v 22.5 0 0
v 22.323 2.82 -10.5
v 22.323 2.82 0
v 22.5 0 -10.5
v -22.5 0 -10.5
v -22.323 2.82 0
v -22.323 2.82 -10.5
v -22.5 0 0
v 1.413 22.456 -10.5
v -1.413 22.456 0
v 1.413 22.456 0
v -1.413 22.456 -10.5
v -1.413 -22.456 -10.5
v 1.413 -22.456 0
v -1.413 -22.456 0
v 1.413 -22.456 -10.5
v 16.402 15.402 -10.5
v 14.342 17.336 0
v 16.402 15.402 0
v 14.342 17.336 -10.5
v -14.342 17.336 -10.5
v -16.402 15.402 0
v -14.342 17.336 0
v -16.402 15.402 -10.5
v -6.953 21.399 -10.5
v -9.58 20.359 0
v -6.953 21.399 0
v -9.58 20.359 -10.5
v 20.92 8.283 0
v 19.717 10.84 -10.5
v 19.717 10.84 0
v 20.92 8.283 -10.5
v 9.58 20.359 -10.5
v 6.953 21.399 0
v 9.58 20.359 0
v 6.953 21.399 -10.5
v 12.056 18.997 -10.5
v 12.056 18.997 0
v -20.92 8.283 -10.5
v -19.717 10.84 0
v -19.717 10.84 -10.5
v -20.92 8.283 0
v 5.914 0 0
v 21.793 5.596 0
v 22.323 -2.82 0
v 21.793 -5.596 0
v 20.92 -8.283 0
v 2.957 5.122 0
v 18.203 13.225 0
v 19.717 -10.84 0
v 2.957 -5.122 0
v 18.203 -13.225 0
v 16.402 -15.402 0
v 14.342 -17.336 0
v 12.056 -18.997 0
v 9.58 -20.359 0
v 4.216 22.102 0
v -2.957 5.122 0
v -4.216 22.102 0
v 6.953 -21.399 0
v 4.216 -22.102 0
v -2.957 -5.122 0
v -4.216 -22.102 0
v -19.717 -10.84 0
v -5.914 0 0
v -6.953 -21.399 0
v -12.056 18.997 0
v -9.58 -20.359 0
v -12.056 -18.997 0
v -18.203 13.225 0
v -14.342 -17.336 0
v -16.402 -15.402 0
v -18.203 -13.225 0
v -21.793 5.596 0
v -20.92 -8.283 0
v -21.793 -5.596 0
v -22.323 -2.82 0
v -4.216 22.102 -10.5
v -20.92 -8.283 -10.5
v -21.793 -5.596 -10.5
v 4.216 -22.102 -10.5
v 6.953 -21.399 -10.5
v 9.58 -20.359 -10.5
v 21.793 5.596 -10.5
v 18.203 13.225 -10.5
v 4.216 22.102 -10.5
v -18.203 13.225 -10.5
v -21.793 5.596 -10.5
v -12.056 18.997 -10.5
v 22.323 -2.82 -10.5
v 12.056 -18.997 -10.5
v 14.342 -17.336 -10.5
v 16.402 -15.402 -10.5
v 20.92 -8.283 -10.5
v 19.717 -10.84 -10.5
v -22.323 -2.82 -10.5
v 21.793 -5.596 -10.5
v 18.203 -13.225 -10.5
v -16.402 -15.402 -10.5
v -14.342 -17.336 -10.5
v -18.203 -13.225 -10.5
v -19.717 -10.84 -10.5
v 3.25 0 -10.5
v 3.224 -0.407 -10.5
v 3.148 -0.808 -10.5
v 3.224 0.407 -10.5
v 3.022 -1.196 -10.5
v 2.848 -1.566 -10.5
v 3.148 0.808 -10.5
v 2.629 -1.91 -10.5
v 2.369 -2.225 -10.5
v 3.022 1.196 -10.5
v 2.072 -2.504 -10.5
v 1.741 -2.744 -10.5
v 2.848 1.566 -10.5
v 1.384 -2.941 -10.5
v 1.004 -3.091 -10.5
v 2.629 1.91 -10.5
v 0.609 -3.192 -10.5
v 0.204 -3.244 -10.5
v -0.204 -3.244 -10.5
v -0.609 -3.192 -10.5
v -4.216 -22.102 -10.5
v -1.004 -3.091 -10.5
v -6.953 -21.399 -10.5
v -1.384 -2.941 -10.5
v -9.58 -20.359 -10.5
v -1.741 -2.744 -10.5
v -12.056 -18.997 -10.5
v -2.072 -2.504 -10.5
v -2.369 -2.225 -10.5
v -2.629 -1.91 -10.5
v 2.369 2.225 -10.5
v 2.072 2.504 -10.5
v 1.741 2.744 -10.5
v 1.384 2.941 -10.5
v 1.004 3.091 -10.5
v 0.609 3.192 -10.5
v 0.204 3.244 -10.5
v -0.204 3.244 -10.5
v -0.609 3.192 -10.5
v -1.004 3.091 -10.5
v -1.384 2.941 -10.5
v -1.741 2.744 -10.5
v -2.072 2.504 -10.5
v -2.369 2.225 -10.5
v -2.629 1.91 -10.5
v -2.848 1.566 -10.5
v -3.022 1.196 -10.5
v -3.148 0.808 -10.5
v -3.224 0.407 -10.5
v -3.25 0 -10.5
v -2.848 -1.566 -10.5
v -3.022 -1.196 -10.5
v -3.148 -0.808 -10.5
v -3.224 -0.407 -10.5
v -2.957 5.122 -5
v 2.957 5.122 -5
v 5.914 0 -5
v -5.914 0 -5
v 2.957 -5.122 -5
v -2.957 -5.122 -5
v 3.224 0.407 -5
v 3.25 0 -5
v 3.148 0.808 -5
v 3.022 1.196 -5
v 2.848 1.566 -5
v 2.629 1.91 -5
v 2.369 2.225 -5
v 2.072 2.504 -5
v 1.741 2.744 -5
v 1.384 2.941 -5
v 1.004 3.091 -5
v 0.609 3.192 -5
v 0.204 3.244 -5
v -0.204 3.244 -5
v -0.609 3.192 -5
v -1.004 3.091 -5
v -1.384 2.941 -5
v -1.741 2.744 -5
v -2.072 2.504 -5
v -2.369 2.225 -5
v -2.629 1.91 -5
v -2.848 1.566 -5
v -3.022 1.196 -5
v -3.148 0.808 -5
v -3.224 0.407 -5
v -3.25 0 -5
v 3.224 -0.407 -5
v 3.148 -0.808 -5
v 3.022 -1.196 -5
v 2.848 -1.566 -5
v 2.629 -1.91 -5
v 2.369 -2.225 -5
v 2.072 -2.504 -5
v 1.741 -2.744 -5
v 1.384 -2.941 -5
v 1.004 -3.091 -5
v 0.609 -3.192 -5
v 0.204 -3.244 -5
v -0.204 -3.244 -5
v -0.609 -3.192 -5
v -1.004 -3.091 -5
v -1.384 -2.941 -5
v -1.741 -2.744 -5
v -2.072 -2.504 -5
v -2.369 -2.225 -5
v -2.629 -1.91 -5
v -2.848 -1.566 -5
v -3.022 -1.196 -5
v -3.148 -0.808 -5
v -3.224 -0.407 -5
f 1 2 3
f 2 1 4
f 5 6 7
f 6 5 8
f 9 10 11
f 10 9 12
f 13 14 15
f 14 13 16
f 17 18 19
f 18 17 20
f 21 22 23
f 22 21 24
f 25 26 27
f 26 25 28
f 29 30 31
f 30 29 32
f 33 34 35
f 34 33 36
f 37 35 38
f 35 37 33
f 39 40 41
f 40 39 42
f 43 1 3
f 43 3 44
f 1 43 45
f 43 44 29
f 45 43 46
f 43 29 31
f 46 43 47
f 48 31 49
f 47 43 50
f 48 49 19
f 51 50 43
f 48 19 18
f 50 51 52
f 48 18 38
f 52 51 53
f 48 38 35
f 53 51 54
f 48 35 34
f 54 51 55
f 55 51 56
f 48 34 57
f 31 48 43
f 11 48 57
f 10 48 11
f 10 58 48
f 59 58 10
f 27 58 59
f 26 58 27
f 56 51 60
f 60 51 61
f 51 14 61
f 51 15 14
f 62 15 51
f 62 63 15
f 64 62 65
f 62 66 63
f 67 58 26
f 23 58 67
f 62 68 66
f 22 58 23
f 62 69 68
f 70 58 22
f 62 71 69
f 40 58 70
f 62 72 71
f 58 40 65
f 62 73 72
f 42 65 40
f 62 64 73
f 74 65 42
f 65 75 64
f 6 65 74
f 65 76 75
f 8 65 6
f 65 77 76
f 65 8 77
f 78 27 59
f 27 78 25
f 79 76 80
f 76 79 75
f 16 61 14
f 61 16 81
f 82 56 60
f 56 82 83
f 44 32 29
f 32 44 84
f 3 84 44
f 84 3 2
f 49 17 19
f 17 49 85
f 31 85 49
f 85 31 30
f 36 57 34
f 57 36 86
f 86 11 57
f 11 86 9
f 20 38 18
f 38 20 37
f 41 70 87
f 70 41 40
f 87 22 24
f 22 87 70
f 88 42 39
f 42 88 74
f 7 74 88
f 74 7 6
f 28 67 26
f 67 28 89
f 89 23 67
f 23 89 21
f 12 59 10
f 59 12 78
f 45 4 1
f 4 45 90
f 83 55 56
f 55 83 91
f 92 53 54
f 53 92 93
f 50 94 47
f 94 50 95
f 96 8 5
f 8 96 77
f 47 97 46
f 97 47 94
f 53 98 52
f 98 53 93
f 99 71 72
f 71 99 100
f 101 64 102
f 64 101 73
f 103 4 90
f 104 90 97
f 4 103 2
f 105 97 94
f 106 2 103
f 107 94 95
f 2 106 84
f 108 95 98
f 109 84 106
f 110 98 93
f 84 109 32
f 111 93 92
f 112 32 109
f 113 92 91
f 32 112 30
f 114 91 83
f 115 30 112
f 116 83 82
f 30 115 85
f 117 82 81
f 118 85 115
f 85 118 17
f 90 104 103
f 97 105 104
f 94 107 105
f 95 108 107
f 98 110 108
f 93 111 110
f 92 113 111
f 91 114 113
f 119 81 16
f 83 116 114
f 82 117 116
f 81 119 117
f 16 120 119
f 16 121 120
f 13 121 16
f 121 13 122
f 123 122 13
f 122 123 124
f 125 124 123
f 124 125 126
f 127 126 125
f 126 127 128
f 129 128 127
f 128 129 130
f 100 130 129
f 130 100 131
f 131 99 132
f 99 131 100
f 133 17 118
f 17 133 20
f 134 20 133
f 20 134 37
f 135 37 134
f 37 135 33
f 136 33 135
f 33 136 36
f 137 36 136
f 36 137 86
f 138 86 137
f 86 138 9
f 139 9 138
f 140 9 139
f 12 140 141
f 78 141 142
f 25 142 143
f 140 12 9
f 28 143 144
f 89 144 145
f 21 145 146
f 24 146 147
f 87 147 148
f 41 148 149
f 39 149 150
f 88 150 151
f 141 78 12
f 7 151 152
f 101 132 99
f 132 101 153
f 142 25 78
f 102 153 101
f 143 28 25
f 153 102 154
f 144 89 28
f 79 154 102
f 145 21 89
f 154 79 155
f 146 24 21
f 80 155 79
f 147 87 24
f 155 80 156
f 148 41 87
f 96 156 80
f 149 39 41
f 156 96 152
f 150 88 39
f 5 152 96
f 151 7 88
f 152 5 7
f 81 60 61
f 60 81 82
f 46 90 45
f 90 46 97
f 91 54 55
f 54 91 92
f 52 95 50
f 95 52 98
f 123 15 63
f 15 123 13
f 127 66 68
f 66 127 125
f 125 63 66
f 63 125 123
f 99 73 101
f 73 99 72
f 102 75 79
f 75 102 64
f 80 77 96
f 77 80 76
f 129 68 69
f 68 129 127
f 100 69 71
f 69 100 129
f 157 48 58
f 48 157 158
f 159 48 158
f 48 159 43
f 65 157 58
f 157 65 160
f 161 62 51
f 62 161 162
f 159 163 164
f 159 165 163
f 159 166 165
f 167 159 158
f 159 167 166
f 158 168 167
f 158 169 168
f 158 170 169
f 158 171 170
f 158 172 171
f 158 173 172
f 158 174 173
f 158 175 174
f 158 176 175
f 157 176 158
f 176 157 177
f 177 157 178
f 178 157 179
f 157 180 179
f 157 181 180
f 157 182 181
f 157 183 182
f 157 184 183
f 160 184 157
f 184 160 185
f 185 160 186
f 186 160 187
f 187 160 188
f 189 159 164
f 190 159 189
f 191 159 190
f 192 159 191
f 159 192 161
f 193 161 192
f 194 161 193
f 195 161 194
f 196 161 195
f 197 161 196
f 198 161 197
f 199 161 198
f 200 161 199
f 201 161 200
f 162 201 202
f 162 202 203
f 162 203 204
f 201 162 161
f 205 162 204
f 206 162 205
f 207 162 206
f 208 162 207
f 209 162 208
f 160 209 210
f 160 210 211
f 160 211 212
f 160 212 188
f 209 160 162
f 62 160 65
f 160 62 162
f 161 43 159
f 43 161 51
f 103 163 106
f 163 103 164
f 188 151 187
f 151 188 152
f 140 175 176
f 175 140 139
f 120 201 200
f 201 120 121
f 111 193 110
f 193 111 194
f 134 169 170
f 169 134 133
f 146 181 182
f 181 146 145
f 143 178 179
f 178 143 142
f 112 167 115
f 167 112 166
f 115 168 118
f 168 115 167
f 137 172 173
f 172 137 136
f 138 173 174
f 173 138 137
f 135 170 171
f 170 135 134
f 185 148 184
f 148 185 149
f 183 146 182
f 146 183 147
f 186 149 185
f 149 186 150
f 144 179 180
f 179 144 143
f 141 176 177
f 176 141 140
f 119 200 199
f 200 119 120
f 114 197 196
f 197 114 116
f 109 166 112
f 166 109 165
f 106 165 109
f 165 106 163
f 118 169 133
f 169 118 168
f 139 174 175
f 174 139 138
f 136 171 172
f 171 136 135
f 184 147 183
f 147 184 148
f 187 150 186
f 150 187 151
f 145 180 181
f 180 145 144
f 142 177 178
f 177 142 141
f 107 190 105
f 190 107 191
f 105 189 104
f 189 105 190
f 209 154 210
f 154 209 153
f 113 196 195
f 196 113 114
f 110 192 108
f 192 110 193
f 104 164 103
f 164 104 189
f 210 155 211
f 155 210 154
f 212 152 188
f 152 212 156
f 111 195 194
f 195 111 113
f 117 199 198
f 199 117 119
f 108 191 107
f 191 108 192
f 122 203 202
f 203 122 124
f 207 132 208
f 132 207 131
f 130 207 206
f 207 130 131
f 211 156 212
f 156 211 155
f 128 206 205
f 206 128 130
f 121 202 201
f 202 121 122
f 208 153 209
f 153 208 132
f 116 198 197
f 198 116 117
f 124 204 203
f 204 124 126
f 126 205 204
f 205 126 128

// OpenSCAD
$fn = 50;


difference() {
	union() {
		translate(v = [0, 0, -10.5000000000]) {
			cylinder(h = 10.5000000000, r = 22.5000000000);
		}
		translate(v = [0, 0, -12.0000000000]) {
			cylinder(h = 12, r = 2.8750000000);
		}
	}
	union() {
		translate(v = [0, 0, 0]) {
			rotate(a = [0, 0, 0]) {
				difference() {
					union() {
						translate(v = [0, 0, -5]) {
							linear_extrude(height = 5) {
								polygon(points = [[5.9142500000, 0.0000000000], [2.9571250000, 5.1218907443], [-2.9571250000, 5.1218907443], [-5.9142500000, 0.0000000000], [-2.9571250000, -5.1218907443], [2.9571250000, -5.1218907443]]);
							}
						}
					}
					union();
				}
			}
		}
		#translate(v = [0, 0, -100.0000000000]) {
			cylinder(h = 200, r = 3.2500000000);
		}
	}
}
